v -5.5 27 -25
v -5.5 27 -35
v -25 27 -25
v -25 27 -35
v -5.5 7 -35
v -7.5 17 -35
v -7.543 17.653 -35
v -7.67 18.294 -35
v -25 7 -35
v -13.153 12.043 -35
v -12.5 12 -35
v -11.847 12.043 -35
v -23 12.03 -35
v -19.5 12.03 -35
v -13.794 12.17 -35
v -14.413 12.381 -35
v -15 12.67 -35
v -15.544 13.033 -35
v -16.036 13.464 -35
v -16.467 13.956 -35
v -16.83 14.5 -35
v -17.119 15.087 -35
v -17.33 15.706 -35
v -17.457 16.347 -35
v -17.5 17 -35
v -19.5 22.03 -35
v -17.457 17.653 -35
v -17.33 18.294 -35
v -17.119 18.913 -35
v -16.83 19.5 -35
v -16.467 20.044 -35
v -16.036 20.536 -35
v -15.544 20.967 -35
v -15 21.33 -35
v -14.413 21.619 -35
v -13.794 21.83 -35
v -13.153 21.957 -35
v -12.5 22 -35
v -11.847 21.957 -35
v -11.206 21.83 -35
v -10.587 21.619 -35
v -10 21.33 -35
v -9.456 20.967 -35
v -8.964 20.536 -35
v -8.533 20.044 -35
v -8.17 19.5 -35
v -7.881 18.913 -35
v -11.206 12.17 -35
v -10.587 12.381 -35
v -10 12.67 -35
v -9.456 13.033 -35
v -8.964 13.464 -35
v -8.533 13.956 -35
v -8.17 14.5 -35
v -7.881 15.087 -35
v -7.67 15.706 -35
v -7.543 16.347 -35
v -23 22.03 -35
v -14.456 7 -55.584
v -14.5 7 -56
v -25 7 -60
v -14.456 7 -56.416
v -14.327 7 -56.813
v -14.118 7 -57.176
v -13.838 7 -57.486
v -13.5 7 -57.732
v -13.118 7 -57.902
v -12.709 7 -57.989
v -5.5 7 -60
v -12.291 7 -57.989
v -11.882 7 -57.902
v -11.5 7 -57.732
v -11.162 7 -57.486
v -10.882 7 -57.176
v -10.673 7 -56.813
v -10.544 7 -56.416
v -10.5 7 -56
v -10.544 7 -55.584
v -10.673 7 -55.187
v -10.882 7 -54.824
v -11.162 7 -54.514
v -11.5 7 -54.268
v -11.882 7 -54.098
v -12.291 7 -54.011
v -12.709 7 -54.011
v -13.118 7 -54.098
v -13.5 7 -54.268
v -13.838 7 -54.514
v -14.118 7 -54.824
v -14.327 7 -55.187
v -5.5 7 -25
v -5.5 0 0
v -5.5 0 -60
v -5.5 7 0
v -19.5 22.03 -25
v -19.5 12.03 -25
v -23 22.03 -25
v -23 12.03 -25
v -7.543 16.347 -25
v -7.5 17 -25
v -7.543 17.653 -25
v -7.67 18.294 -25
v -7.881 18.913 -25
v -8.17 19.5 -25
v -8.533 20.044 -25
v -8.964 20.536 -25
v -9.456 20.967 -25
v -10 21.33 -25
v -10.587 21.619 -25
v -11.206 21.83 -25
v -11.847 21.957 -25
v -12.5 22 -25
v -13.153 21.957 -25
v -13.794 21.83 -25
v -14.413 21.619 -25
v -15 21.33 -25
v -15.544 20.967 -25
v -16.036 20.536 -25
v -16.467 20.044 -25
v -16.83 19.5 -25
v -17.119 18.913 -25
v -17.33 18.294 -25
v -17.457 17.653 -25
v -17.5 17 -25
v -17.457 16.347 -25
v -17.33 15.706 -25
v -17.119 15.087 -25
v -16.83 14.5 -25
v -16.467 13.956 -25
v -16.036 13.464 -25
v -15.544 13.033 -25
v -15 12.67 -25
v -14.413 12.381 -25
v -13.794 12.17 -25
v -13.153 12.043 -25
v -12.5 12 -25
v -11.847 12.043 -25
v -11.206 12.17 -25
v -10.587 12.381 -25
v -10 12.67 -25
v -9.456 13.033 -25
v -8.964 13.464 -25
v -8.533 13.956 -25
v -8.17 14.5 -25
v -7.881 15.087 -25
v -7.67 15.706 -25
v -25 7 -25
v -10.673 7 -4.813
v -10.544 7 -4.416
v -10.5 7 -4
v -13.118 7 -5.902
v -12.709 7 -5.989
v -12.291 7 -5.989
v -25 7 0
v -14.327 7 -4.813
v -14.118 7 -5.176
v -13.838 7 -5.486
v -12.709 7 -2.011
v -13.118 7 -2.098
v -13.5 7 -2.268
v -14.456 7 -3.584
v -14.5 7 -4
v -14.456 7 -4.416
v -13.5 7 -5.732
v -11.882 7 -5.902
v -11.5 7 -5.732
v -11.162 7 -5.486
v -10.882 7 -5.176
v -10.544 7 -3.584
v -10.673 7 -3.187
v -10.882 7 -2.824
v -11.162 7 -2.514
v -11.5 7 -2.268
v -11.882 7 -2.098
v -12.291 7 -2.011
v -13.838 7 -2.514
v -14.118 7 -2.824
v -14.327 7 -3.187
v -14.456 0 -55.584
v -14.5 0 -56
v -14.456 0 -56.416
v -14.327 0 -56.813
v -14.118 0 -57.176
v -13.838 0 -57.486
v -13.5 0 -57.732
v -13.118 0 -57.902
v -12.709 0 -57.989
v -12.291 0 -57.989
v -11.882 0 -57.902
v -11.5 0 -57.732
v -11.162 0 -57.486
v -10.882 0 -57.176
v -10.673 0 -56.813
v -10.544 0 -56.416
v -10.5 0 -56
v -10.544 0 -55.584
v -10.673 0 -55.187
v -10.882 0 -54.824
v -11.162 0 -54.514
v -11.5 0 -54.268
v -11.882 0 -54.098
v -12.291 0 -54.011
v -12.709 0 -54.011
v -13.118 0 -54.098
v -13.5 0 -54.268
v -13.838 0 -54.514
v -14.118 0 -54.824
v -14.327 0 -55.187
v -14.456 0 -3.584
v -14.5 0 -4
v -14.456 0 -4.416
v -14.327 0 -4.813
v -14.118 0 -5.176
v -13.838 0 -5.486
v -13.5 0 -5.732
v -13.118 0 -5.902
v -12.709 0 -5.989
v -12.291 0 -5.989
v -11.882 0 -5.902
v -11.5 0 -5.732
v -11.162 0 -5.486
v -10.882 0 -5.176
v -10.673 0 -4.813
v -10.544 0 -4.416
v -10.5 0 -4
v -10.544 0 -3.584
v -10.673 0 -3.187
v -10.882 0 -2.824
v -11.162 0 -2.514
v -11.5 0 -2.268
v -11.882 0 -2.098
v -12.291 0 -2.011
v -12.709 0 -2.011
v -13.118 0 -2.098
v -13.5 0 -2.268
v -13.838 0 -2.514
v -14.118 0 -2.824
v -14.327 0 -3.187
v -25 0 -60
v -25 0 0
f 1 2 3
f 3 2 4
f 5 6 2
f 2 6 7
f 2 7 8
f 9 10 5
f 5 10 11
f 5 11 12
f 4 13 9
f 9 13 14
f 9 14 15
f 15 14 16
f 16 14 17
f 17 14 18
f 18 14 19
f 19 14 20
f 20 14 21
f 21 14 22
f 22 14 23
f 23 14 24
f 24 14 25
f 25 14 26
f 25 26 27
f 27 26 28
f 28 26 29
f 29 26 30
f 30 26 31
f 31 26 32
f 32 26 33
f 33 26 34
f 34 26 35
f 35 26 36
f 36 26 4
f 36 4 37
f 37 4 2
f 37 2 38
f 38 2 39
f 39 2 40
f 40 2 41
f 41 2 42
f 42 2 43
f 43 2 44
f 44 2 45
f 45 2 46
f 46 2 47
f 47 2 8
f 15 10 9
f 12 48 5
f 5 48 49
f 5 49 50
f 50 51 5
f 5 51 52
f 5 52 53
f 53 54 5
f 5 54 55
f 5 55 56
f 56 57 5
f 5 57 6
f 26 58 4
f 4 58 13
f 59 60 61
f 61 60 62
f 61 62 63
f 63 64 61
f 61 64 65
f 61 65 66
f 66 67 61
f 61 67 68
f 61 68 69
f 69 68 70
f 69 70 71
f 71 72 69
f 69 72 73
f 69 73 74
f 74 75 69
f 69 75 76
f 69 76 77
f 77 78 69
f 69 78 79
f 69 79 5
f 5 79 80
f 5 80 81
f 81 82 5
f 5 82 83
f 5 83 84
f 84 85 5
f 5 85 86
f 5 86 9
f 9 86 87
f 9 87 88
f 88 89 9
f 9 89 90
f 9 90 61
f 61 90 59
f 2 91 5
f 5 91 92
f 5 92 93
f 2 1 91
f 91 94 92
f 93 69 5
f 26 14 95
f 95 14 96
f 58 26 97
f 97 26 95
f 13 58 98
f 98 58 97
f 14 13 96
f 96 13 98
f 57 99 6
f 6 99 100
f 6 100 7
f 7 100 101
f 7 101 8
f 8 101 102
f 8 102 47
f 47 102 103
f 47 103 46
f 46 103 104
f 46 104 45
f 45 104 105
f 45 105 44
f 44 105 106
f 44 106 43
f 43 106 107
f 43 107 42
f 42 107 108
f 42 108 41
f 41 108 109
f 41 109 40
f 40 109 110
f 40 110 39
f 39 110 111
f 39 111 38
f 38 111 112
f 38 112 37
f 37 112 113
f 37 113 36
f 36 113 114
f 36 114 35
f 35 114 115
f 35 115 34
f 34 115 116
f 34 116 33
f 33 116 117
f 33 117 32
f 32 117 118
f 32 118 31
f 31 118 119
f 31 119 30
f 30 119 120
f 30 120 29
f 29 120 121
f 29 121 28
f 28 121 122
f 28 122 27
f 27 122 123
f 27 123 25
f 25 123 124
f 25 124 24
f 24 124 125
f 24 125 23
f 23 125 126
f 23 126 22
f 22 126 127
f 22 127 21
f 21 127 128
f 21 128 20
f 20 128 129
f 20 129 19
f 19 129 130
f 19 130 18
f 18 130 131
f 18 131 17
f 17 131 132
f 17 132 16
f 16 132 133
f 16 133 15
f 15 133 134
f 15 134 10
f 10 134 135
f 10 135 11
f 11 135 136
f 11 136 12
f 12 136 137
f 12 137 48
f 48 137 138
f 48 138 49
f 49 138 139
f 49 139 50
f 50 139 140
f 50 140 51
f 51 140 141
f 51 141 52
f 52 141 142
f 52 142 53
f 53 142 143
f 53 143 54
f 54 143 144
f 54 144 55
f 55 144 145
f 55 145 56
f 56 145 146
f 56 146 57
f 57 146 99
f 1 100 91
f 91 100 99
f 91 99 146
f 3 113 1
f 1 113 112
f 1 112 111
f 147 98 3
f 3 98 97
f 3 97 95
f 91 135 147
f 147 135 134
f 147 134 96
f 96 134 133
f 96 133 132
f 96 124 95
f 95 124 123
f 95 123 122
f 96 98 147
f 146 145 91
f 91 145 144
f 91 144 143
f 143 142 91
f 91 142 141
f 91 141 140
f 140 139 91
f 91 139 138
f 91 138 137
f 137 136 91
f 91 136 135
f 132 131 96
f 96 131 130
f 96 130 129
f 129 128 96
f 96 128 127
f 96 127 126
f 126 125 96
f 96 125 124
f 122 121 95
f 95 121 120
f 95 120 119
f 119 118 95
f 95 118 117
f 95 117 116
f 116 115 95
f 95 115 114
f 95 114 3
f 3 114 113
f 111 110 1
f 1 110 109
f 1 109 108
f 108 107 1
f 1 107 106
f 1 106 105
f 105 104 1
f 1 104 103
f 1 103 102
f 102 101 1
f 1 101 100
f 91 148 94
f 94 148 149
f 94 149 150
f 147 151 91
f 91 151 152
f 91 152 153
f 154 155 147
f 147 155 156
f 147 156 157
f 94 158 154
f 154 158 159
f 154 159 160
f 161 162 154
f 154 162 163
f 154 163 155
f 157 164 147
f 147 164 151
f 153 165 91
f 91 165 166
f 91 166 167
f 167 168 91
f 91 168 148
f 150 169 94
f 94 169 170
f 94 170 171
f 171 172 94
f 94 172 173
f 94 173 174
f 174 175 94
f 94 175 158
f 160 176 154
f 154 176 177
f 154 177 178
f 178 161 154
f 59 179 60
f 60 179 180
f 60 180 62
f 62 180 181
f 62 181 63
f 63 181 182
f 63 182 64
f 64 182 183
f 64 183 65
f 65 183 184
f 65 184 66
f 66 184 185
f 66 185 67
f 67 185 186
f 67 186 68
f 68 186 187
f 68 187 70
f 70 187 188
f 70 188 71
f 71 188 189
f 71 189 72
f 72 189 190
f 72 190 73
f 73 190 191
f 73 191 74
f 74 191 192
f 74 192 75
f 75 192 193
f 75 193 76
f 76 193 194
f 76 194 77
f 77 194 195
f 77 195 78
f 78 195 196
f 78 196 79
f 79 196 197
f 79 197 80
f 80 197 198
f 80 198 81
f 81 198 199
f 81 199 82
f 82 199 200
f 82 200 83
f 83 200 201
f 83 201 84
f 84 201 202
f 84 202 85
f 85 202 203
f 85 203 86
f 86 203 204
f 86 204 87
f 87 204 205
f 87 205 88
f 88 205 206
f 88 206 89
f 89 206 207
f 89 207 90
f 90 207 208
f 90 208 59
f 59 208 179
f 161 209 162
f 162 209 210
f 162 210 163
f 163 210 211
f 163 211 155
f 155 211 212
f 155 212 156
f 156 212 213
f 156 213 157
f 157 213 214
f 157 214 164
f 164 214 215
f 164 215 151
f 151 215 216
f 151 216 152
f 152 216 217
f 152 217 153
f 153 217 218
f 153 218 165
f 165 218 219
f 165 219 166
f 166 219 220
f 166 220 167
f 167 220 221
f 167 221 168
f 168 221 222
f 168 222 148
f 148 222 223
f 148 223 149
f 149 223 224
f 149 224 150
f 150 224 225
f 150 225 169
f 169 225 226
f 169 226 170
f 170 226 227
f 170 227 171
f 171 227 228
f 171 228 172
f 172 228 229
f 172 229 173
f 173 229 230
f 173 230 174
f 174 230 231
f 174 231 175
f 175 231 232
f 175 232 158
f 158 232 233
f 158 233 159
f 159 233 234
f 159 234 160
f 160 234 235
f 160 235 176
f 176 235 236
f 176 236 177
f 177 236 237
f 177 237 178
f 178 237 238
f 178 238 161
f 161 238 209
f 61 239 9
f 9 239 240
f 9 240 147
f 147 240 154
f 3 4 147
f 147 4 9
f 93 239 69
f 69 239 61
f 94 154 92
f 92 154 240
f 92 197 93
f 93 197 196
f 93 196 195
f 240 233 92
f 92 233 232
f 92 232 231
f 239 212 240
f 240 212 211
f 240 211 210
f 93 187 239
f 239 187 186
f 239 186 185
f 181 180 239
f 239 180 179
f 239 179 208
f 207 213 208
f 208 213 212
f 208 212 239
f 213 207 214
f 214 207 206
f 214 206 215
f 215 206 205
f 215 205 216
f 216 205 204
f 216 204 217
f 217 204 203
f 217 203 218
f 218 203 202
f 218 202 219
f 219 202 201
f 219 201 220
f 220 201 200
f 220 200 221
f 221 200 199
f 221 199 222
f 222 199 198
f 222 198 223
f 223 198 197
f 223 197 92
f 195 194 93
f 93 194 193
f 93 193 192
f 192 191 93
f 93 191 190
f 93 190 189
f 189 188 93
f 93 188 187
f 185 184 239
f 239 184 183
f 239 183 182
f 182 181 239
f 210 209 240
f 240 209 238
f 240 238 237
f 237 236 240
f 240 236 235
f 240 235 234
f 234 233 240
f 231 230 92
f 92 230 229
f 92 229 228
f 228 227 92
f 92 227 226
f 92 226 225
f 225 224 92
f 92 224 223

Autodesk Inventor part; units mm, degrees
ref_plane "YZ Plane" through (0, 0, 0) normal (1, 0, 0) x (0, 1, 0)
ref_plane "XZ Plane" through (0, 0, 0) normal (0, 1, 0) x (-1, 0, 0)
ref_plane "XY Plane" through (0, 0, 0) normal (0, 0, 1) x (1, 0, 0)
sketch "Sketch1" plane through (0, 0, 0) normal (0, 1, 0) x (-1, 0, 0)
  line L0 (0, 0) -> (25, 0)
  line L1 (25, 0) -> (25, -60)
  line L2 (25, -60) -> (0, -60)
  line L3 (0, -60) -> (0, 0)
  circle A0 centre (12.5, -4) radius 2
  circle A1 centre (12.5, -56) radius 2
  dimension "d0" = 25
  dimension "d1" = 60
  dimension "d2" = 4
  dimension "d3" = 4
  dimension "d4" = 52
  dimension "d5" = 4
extrude "Extrusion1" add sketch "Sketch1" along normal blind 7
sketch "Sketch2" plane through (0, 7, 0) normal (0, 1, 0) x (1, 0, 0)
  line L0 (-25, 60) -> (-25, 0) projected
  line L1 (-25, 25) -> (0, 25)
  line L2 (0, 25) -> (0, 35)
  line L3 (0, 35) -> (-25, 35)
  line L4 (-25, 35) -> (-25, 25)
  line L5 (0, 60) -> (-25, 60) projected
  point P0 (0, 0)
  dimension "d8" = 25
  dimension "d9" = 10
  dimension "d10" = 25
extrude "Extrusion2" add sketch "Sketch2" along normal blind 20
sketch "Sketch3" plane through (-25, 7, -25) normal (0, 0, 1) x (1, 0, 0)
  circle A0 centre (12.5, 10) radius 5
  line L0 (2, 15.0299) -> (5.5, 15.0299)
  line L1 (5.5, 15.0299) -> (5.5, 5.0299)
  line L2 (5.5, 5.0299) -> (2, 5.0299)
  line L3 (2, 5.0299) -> (2, 15.0299)
  line L4 (19.5, 15.0299) -> (23, 15.0299)
  line L5 (23, 15.0299) -> (23, 5.0299)
  line L6 (23, 5.0299) -> (19.5, 5.0299)
  line L7 (19.5, 5.0299) -> (19.5, 15.0299)
  line L8 (0, 0) -> (0, 20) projected
  point P0 (25, -7)
  dimension "d13" = 10
  dimension "d14" = 3.5
  dimension "d15" = 10
  dimension "d16" = 3.5
  dimension "d17" = 10
  dimension "d20" = 7
  dimension "d21" = 7
  dimension "d22" = 12.5
extrude "Extrusion3" cut sketch "Sketch3" against normal blind 20
sketch "Sketch4" plane through (0, 0, 0) normal (1, 0, 0) x (0, 0, -1)
  line L0 (-8.0858, 30.1503) -> (63.6355, 30.1503)
  line L1 (63.6355, 30.1503) -> (63.6355, -9.4106)
  line L2 (63.6355, -9.4106) -> (-8.0858, -9.4106)
  line L3 (-8.0858, -9.4106) -> (-8.0858, 30.1503)
  point P0 (0, 0)
extrude "Extrusion4" cut sketch "Sketch4" against normal blind 5.5
properties part number "zthreadedrod"
